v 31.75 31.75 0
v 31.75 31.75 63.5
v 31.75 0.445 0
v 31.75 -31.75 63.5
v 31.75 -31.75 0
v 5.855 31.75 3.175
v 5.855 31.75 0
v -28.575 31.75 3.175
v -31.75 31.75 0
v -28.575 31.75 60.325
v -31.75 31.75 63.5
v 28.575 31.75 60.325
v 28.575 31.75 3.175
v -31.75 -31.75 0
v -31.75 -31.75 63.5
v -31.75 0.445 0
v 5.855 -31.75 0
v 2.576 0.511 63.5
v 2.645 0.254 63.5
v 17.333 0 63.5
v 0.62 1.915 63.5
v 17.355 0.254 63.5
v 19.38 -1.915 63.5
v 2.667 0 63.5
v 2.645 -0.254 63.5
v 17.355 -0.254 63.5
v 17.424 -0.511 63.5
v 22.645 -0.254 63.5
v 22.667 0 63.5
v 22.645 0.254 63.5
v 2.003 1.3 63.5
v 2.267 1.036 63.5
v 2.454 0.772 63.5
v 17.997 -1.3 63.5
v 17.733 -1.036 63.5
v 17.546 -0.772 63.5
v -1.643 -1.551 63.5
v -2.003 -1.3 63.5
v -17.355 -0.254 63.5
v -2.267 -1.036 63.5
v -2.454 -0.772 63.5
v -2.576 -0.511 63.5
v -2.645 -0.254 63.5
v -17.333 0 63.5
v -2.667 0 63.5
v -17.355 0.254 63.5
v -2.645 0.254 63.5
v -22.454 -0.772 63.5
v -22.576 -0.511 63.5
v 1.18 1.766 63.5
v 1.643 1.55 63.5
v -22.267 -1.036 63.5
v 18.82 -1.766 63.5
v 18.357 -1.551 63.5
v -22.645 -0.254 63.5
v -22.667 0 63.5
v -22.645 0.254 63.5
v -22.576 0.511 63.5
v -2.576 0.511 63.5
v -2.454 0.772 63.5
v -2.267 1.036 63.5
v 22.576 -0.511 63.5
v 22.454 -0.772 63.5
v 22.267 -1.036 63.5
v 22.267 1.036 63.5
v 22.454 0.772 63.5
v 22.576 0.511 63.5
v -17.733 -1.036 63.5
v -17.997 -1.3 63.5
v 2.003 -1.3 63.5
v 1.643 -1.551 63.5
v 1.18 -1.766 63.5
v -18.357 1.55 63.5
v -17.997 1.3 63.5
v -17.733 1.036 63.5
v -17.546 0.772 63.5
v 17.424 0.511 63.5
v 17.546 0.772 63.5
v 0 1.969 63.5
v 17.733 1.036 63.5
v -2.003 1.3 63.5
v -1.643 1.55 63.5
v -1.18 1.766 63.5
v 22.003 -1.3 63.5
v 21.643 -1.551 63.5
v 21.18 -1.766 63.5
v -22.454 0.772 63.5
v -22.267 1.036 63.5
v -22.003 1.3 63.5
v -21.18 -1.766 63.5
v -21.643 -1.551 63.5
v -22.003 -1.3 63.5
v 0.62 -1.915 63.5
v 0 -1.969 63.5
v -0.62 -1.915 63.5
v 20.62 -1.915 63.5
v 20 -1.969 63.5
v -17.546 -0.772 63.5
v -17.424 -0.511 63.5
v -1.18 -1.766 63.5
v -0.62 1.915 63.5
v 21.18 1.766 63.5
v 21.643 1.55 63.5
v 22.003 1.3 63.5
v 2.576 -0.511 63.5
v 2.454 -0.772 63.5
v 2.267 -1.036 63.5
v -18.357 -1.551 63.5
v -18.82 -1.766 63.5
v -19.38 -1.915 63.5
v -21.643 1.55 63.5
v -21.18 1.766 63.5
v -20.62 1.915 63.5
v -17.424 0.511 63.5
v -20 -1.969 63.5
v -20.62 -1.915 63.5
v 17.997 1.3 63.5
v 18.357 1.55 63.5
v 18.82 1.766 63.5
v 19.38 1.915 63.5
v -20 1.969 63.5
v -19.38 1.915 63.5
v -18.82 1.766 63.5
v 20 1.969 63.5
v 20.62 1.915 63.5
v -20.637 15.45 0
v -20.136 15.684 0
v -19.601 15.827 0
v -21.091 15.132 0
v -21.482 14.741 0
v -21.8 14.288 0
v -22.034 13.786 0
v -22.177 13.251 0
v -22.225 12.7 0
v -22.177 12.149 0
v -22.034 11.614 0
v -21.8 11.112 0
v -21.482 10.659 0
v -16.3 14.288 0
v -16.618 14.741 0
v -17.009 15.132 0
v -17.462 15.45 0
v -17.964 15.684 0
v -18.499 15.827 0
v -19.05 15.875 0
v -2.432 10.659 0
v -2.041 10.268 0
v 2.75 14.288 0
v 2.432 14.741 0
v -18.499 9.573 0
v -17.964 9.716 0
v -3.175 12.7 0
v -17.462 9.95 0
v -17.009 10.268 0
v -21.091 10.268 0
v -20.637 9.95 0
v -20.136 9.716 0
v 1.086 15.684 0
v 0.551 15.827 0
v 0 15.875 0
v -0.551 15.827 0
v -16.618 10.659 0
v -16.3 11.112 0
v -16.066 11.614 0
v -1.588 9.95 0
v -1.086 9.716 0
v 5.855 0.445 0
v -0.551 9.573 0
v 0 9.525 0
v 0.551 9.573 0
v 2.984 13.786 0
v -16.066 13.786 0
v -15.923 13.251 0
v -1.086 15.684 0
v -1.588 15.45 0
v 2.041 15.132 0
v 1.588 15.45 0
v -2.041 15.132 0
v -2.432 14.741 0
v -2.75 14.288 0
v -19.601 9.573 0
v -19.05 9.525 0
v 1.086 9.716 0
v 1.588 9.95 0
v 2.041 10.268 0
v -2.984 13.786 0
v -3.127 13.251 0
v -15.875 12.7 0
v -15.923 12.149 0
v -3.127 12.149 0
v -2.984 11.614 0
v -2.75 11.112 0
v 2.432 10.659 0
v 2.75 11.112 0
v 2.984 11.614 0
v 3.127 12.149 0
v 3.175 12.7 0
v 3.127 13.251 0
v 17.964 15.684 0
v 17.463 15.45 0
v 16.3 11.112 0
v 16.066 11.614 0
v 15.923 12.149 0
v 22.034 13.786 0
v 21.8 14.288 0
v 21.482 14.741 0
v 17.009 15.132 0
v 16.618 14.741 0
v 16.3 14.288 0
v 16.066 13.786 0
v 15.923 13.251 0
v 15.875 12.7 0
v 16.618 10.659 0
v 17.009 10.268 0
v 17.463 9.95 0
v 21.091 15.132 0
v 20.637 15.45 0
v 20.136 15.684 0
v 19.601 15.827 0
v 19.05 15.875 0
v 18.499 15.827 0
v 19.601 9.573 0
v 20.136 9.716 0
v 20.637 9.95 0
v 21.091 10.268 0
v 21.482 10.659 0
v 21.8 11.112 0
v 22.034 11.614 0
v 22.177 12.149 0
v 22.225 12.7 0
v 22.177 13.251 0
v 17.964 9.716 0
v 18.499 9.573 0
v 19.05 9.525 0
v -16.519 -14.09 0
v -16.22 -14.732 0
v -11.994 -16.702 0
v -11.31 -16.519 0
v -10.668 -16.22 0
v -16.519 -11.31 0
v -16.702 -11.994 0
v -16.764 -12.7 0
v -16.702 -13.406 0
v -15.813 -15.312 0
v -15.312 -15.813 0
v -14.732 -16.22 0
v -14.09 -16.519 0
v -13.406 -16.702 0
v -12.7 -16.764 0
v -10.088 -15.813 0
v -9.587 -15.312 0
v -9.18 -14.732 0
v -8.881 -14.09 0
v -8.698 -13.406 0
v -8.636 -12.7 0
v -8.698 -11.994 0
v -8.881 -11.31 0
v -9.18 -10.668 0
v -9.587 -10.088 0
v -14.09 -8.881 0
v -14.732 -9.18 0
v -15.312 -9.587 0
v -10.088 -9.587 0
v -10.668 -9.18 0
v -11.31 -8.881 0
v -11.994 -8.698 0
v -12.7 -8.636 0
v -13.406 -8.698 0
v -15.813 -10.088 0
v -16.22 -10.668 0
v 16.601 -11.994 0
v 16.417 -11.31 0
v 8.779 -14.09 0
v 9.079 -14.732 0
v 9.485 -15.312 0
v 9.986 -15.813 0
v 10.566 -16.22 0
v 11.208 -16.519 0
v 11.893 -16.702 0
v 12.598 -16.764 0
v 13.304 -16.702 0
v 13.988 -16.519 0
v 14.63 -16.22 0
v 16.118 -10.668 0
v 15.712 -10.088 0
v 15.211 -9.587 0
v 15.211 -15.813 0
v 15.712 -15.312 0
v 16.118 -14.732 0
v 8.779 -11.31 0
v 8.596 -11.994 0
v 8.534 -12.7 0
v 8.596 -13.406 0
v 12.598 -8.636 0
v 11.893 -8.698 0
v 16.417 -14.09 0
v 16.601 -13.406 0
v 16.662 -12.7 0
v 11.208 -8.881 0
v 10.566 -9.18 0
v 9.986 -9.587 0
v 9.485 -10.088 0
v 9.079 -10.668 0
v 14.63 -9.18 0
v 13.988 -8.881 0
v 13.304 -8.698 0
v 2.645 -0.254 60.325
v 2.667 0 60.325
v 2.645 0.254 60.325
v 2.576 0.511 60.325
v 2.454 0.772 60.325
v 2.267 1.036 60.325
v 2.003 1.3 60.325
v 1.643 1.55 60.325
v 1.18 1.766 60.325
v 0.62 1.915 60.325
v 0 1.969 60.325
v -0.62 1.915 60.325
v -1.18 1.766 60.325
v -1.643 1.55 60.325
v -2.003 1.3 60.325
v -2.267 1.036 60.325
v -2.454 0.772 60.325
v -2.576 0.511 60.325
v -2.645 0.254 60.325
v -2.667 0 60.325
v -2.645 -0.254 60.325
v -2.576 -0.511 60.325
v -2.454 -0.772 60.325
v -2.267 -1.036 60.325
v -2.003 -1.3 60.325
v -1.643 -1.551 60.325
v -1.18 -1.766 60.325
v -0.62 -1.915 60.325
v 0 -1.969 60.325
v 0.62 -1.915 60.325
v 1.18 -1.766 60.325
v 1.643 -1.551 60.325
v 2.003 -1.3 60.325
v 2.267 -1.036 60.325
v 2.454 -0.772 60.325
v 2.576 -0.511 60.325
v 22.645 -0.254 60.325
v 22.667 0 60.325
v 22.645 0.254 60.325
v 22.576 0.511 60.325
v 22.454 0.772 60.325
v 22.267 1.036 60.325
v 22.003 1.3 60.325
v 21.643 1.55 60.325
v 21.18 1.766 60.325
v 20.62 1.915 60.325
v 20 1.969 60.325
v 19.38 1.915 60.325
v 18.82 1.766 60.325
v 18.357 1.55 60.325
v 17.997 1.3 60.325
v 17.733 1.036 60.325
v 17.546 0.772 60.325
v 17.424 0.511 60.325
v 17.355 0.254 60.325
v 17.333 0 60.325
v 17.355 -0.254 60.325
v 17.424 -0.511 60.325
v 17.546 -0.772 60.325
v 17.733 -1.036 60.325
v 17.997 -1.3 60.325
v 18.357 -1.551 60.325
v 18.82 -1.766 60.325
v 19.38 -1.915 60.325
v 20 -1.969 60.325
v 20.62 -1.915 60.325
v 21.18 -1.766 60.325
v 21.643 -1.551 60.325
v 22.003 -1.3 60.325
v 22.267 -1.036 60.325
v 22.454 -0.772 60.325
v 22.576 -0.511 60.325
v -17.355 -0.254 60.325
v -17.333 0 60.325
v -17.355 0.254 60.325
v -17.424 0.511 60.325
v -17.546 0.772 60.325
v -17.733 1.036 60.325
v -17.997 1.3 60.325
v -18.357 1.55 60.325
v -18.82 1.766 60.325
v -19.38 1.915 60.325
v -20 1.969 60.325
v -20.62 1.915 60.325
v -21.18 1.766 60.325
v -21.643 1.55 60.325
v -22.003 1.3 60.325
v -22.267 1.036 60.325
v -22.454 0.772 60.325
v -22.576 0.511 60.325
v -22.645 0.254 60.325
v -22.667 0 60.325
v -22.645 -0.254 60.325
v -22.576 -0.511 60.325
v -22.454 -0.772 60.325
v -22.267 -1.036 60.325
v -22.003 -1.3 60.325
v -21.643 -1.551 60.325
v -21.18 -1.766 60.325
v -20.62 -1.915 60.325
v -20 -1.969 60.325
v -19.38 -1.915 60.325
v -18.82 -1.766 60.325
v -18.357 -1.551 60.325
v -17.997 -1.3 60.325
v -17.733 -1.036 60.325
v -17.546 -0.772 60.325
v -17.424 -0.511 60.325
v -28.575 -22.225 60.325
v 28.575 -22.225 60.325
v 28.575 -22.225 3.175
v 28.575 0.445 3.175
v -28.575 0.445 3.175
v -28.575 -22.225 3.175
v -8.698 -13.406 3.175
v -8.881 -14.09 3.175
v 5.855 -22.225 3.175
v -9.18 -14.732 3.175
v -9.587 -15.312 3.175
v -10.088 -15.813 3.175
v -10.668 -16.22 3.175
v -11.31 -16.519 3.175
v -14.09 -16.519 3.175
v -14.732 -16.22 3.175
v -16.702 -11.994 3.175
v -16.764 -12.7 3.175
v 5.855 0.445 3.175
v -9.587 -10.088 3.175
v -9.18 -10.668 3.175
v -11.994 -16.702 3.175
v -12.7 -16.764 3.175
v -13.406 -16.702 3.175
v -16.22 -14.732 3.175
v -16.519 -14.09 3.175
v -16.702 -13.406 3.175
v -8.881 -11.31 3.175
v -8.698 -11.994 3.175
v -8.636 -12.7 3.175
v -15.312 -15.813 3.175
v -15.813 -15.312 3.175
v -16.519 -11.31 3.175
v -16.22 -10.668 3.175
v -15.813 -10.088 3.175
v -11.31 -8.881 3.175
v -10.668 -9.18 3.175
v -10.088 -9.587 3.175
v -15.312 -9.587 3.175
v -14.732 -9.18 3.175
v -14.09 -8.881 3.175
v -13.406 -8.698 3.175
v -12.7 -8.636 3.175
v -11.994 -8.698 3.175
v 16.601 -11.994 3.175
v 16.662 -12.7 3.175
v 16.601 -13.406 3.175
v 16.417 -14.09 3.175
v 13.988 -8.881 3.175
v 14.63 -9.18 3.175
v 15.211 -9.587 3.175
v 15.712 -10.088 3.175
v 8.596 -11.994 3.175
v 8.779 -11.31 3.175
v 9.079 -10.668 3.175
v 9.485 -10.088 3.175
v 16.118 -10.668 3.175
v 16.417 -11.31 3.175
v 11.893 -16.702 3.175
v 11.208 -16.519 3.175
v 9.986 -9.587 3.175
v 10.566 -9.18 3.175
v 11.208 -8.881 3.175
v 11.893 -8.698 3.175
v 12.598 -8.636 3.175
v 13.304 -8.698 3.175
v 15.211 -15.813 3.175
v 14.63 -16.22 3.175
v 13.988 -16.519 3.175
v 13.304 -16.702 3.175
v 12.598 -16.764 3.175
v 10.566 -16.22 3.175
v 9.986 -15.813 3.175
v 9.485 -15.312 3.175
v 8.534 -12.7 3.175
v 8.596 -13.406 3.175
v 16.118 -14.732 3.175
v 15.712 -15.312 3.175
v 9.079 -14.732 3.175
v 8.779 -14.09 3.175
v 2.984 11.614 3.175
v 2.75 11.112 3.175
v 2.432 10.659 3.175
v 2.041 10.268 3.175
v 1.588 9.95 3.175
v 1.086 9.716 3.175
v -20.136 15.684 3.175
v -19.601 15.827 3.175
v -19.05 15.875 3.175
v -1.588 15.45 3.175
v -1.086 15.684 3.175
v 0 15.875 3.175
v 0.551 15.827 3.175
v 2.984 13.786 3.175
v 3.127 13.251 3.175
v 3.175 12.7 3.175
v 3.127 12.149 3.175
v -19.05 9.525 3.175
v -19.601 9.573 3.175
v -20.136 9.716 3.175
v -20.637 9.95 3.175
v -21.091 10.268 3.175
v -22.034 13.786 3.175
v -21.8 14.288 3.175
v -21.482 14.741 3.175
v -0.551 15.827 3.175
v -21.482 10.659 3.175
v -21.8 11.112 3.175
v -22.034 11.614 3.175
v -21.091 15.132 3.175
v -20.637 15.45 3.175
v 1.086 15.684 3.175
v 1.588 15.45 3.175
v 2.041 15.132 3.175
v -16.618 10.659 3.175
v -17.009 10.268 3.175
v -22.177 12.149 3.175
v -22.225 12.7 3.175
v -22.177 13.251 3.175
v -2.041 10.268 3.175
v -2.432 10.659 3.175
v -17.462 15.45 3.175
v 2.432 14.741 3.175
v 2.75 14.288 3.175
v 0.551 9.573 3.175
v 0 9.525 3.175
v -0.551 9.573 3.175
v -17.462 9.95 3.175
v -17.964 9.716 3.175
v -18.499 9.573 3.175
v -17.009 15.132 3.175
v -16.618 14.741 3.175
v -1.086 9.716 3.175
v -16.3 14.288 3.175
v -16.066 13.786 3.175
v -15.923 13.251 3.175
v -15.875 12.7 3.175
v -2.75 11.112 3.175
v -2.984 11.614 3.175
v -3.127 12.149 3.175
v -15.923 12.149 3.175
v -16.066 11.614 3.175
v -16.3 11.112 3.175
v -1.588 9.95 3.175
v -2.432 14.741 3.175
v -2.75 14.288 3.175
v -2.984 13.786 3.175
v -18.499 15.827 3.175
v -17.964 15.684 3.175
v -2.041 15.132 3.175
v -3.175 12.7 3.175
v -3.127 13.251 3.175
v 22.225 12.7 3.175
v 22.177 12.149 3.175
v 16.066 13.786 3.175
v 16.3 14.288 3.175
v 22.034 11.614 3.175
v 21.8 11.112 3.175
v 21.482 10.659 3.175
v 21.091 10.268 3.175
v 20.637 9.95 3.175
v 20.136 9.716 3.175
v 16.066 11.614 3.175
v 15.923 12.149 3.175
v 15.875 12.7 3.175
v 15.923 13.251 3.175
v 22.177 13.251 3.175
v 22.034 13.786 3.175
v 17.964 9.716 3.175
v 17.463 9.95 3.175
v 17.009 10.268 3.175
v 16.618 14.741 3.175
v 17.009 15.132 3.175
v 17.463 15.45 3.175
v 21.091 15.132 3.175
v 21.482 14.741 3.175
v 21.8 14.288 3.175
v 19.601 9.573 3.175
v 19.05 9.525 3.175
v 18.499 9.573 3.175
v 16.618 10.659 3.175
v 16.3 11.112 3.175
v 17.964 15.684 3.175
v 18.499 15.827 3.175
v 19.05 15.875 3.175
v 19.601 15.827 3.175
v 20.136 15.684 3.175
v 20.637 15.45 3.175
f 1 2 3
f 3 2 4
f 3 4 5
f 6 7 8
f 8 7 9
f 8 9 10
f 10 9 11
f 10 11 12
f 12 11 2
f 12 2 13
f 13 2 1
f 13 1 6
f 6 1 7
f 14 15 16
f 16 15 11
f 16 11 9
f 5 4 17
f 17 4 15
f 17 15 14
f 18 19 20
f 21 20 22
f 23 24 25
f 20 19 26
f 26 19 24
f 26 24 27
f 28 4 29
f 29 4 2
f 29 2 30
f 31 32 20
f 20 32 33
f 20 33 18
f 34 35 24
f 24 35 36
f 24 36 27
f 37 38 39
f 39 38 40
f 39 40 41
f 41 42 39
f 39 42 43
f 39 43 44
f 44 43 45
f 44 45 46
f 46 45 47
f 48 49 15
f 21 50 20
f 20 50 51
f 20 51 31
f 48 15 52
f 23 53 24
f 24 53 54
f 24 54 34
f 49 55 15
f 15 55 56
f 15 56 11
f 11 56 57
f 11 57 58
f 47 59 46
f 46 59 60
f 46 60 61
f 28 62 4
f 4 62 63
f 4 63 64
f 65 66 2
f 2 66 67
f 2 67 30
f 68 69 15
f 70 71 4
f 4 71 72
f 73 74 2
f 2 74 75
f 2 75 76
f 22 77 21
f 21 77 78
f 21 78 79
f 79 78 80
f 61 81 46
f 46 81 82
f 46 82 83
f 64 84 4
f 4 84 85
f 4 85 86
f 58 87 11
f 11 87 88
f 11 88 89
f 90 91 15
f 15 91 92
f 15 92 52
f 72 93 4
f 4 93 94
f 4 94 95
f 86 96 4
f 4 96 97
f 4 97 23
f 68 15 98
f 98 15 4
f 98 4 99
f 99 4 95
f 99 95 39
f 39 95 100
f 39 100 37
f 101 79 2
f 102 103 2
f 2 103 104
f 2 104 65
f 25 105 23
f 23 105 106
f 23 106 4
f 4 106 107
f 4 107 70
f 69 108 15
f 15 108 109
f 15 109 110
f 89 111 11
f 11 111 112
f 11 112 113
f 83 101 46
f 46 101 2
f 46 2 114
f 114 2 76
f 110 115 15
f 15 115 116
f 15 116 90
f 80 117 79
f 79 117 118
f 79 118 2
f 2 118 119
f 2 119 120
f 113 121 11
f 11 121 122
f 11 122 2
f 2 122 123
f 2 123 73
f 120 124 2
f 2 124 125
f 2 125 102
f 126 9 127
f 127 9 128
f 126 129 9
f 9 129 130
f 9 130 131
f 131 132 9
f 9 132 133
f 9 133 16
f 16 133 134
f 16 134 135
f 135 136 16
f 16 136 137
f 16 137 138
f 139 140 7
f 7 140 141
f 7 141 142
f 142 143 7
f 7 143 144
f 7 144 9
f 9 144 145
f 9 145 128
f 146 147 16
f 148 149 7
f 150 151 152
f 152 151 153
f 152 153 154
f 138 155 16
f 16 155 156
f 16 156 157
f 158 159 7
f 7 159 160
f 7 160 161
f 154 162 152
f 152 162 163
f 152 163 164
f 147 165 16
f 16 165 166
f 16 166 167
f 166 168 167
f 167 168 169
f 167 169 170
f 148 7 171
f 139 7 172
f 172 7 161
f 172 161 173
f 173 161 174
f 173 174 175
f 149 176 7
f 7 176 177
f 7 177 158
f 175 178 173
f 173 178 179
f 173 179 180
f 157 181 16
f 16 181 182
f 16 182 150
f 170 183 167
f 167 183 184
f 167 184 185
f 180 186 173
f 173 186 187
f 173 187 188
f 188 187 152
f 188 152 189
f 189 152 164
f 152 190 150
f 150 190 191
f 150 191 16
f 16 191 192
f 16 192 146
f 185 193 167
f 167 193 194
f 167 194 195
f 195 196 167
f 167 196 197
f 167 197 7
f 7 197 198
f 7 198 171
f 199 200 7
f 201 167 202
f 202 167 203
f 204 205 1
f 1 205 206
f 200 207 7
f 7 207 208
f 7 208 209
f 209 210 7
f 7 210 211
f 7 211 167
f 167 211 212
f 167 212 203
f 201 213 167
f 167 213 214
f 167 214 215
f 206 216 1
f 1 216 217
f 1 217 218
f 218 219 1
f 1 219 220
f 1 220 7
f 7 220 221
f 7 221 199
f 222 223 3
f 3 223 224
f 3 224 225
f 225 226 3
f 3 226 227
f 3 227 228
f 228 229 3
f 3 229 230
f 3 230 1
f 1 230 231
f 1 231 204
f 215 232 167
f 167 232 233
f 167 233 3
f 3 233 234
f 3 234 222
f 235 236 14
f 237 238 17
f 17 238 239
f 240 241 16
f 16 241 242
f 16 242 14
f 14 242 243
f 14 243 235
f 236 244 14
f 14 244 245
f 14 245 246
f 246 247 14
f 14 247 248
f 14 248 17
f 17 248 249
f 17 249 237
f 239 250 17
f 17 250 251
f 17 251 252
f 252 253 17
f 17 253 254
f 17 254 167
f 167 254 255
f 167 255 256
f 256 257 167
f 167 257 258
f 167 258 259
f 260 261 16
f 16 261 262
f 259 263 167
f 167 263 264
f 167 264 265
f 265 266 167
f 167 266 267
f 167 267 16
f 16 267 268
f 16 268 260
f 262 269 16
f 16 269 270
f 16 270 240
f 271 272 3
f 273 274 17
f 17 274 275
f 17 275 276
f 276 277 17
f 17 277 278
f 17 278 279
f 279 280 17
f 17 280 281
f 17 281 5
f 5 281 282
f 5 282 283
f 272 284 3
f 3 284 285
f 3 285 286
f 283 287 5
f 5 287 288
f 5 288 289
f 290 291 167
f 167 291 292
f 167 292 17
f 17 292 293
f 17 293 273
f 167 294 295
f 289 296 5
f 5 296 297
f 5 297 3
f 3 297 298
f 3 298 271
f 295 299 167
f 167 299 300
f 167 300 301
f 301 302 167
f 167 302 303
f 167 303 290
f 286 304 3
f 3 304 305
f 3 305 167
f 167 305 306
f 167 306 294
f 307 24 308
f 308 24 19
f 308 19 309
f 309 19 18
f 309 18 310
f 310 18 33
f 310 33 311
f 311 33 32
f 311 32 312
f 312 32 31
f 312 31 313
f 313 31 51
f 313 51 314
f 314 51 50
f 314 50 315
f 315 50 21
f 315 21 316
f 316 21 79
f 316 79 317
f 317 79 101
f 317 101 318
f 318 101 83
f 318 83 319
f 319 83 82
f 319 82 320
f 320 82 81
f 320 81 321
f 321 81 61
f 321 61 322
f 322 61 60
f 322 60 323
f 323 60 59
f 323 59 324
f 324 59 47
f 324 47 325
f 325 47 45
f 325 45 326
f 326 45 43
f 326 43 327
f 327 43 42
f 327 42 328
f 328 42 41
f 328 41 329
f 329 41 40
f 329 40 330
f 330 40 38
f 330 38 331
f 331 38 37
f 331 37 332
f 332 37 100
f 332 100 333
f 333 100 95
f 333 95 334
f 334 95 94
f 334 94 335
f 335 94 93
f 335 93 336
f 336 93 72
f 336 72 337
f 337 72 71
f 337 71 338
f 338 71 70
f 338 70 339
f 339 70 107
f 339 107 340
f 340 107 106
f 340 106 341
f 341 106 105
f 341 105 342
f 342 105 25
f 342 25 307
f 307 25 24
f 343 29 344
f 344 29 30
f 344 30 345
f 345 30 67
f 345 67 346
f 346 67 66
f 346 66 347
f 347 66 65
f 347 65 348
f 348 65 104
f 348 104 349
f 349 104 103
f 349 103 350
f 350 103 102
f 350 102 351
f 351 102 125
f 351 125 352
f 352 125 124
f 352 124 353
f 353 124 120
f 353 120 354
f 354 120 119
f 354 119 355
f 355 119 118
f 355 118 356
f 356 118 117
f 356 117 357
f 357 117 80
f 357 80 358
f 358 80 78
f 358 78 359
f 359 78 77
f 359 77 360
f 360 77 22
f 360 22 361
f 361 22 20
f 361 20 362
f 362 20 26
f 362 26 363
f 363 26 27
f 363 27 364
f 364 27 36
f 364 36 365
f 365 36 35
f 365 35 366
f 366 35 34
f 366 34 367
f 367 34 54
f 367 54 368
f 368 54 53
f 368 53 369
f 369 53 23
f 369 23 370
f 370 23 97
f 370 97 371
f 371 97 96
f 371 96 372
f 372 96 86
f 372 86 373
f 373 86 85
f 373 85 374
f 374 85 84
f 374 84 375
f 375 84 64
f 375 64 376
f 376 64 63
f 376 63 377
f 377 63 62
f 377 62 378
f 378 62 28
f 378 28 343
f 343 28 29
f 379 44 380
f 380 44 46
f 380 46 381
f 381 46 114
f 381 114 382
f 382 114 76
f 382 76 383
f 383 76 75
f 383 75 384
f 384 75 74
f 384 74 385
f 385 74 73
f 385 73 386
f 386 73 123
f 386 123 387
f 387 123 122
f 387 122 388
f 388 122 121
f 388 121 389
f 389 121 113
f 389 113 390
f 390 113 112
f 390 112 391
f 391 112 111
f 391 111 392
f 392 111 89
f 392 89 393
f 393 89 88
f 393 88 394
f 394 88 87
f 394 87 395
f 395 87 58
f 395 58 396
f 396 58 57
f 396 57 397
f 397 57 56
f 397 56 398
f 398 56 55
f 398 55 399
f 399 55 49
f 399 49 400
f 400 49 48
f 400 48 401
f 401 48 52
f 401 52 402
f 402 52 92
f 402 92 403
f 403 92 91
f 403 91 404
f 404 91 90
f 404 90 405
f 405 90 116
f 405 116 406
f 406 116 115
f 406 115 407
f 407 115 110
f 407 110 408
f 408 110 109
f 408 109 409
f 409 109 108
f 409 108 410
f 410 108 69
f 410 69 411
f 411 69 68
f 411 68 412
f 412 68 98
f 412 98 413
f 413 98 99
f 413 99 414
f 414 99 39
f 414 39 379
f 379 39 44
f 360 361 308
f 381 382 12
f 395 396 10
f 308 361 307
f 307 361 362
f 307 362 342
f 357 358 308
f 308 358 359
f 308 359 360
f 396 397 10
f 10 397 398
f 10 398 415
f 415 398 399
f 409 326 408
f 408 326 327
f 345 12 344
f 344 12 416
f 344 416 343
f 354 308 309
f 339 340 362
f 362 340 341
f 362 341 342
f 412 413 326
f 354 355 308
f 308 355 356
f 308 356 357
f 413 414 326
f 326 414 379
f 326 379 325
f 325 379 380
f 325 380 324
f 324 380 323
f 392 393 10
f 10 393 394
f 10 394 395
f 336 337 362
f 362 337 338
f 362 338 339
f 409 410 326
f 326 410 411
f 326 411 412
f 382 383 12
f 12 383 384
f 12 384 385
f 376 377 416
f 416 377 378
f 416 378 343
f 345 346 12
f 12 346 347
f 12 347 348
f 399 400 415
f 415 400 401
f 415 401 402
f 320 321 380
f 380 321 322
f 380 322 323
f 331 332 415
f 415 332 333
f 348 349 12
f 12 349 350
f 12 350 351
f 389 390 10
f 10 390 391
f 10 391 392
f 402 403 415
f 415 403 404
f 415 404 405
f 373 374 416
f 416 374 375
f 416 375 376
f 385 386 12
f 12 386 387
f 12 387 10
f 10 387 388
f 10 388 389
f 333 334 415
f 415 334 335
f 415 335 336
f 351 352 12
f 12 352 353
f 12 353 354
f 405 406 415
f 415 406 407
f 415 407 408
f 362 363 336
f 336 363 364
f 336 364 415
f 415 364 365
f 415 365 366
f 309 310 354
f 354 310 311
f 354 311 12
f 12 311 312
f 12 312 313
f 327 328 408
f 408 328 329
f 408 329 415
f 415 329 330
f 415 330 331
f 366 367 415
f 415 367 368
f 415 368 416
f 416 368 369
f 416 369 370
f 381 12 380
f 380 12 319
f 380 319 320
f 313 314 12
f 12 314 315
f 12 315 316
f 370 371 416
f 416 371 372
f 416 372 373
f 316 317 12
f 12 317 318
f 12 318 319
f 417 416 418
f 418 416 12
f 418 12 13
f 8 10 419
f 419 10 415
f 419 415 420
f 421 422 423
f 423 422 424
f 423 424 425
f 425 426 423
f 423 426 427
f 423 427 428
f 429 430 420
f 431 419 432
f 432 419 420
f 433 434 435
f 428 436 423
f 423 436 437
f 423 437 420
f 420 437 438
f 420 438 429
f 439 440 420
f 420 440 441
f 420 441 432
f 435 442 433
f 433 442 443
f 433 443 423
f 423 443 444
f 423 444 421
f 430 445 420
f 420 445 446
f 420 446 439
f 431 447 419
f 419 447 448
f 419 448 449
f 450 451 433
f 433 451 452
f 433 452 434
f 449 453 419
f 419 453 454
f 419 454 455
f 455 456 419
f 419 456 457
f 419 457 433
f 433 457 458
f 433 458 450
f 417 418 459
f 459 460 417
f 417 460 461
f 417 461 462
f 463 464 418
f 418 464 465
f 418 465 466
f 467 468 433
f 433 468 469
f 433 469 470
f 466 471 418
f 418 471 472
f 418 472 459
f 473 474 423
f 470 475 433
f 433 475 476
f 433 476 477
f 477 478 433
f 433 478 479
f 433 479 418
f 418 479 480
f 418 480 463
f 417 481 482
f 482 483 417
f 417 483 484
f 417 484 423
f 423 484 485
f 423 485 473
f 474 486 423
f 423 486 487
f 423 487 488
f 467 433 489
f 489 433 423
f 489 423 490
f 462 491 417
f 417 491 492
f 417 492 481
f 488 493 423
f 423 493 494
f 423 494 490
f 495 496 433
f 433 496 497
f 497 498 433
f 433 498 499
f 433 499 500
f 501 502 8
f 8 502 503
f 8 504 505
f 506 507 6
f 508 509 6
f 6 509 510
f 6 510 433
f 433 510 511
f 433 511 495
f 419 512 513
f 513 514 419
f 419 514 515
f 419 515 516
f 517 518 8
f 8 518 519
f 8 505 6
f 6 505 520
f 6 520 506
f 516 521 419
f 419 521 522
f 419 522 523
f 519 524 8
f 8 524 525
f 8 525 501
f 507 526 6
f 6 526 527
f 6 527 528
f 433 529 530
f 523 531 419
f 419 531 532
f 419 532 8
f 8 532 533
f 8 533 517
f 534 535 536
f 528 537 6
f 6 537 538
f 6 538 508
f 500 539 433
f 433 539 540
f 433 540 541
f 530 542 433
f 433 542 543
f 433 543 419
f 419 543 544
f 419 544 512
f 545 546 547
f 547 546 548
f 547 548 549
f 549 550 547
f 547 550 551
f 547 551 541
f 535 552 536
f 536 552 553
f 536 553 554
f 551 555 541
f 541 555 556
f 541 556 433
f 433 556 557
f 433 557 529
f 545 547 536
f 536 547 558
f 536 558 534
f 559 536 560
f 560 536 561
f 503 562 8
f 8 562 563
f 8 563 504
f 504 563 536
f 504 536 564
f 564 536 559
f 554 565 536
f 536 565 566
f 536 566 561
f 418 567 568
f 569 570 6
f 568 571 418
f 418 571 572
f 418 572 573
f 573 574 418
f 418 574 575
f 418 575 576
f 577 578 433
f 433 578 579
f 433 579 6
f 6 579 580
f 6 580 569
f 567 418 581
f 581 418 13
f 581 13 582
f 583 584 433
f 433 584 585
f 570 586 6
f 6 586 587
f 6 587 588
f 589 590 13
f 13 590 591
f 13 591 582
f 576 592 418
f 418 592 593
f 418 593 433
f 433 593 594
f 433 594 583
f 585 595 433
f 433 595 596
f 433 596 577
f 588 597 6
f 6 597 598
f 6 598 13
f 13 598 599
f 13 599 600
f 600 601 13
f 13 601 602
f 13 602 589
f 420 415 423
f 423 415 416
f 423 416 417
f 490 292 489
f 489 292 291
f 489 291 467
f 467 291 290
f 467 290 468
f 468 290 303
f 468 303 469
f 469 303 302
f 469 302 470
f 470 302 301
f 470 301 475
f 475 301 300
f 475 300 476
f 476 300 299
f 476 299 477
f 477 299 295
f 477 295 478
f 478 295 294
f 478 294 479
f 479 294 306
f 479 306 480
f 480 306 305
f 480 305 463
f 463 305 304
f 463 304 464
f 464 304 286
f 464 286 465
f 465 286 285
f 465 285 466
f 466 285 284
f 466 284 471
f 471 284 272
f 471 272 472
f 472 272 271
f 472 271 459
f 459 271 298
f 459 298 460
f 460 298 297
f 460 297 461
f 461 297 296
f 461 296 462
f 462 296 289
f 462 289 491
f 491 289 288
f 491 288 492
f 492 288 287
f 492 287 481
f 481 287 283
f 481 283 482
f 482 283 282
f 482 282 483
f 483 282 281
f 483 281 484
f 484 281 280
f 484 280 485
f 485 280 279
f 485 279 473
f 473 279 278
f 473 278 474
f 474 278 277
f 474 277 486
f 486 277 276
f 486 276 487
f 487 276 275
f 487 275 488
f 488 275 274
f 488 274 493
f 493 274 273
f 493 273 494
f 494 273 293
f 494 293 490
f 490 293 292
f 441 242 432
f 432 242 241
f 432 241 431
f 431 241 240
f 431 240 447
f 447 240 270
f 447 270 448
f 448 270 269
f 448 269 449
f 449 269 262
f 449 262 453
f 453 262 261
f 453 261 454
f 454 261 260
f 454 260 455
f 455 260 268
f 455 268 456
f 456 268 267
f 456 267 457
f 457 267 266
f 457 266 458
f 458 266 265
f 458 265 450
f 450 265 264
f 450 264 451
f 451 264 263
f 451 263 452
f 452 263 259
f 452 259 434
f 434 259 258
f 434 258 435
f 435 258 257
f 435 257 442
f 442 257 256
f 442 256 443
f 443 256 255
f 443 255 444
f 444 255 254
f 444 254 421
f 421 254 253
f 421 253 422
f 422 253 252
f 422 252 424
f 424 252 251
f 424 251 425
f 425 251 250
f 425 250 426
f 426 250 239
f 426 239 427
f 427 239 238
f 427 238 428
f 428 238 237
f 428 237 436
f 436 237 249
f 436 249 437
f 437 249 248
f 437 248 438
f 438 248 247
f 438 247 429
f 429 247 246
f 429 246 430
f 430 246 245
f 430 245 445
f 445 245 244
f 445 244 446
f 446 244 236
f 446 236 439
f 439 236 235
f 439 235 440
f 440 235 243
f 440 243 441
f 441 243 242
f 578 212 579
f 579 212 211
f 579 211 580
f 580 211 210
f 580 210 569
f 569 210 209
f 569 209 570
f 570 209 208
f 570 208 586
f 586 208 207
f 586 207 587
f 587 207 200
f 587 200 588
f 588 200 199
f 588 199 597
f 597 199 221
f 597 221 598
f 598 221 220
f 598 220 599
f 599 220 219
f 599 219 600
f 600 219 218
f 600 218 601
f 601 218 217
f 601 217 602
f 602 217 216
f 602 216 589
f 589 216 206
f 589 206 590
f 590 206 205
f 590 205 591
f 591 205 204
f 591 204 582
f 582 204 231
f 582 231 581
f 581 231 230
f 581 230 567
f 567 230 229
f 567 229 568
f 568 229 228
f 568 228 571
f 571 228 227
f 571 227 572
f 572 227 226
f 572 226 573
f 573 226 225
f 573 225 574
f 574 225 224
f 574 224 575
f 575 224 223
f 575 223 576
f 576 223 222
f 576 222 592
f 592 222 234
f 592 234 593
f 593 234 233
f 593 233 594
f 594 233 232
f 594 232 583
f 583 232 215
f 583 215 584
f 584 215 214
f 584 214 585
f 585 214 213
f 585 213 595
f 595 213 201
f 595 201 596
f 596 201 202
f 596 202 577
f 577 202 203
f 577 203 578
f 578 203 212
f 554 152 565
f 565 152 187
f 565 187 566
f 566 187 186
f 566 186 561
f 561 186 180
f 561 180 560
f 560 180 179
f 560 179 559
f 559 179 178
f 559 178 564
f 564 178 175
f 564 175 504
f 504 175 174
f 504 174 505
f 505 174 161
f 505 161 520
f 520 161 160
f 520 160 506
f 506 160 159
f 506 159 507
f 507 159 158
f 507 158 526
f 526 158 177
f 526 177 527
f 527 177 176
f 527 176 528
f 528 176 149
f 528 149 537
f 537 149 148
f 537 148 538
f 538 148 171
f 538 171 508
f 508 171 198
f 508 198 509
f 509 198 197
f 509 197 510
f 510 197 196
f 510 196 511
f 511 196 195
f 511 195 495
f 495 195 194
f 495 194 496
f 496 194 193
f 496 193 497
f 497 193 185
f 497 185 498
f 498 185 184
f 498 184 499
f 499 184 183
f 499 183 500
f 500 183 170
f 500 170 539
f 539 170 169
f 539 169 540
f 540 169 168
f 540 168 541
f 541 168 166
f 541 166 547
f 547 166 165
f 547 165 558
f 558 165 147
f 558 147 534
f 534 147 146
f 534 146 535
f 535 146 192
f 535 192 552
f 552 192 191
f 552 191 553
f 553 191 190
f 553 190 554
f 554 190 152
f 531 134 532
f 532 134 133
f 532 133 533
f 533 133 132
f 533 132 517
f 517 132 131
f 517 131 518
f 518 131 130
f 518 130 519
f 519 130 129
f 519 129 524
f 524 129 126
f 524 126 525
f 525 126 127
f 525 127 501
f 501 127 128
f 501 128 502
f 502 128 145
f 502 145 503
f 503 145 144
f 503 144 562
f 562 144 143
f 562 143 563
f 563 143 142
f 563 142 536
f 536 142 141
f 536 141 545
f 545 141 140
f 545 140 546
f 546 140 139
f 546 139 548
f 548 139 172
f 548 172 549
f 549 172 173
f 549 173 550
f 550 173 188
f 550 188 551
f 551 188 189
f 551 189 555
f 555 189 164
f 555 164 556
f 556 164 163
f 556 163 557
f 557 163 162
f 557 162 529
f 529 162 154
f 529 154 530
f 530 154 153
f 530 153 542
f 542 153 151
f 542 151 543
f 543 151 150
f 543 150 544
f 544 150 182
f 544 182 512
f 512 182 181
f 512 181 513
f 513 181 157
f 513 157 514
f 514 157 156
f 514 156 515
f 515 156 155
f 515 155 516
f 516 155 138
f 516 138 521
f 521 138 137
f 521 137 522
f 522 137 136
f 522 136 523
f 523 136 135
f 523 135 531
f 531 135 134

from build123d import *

# Parameters (mm, degrees)
SKETCH1_W           = 63.5
SKETCH1_H           = 63.5
BOSS_EXTRUDE1_DEPTH = 63.5
SKETCH2_RX          = 2.667
SKETCH2_RY          = 1.9685
CUT_EXTRUDE1_DEPTH  = 3.175
SKETCH3_W           = 57.15
SKETCH3_H           = 57.15
CUT_EXTRUDE2_DEPTH  = 53.975
CUT_EXTRUDE3_REACH  = 79.771
SKETCH4_R           = 4.064
CUT_EXTRUDE4_REACH  = 79.771
SKETCH5_R           = 3.175


with BuildPart() as part:
    # Sketch1 → Boss-Extrude1 (new body)
    with BuildSketch(Plane.XY):
        Rectangle(SKETCH1_W, SKETCH1_H)
    extrude(amount=BOSS_EXTRUDE1_DEPTH)

    # Sketch2 → Cut-Extrude1 (cut)
    with BuildSketch(Plane.XY.offset(63.5)):
        with Locations((0, 0)):
            Ellipse(SKETCH2_RX, SKETCH2_RY)
        with Locations((20, 0)):
            Ellipse(SKETCH2_RX, SKETCH2_RY)
        with Locations((-20, 0)):
            Ellipse(SKETCH2_RX, SKETCH2_RY)
    extrude(amount=-CUT_EXTRUDE1_DEPTH, mode=Mode.SUBTRACT)

    # Sketch3 → Cut-Extrude2 (cut)
    with BuildSketch(Plane(origin=(0, 31.75, 0), x_dir=(1, 0, 0), z_dir=(0, 1, 0))):
        with Locations((0, -31.75)):
            Rectangle(SKETCH3_W, SKETCH3_H)
    extrude(amount=-CUT_EXTRUDE2_DEPTH, mode=Mode.SUBTRACT)

    # Sketch4 → Cut-Extrude3 (cut, up to next)
    with BuildSketch(Plane(origin=(0, 0, 0), x_dir=(-1, 0, 0), z_dir=(0, 0, -1)), mode=Mode.PRIVATE) as cut_extrude3_sk1:
        with Locations((-12.5984, -12.7)):
            Circle(SKETCH4_R)
    cut_extrude3_tool1 = extrude(cut_extrude3_sk1.sketch, amount=-CUT_EXTRUDE3_REACH, mode=Mode.PRIVATE) & part.part
    # Sketch4 → Cut-Extrude3 (cut, up to next)
    with BuildSketch(Plane(origin=(0, 0, 0), x_dir=(-1, 0, 0), z_dir=(0, 0, -1)), mode=Mode.PRIVATE) as cut_extrude3_sk2:
        with Locations((12.7, -12.7)):
            Circle(SKETCH4_R)
    cut_extrude3_tool2 = extrude(cut_extrude3_sk2.sketch, amount=-CUT_EXTRUDE3_REACH, mode=Mode.PRIVATE) & part.part
    add(cut_extrude3_tool1.solids().sort_by_distance((12.5984, -12.7, 0))[0], mode=Mode.SUBTRACT)
    add(cut_extrude3_tool2.solids().sort_by_distance((-12.7, -12.7, 0))[0], mode=Mode.SUBTRACT)

    # Sketch5 → Cut-Extrude4 (cut, up to next)
    with BuildSketch(Plane(origin=(0, 0, 0), x_dir=(-1, 0, 0), z_dir=(0, 0, -1)), mode=Mode.PRIVATE) as cut_extrude4_sk1:
        with Locations((-19.05, 12.7)):
            Circle(SKETCH5_R)
    cut_extrude4_tool1 = extrude(cut_extrude4_sk1.sketch, amount=-CUT_EXTRUDE4_REACH, mode=Mode.PRIVATE) & part.part
    # Sketch5 → Cut-Extrude4 (cut, up to next)
    with BuildSketch(Plane(origin=(0, 0, 0), x_dir=(-1, 0, 0), z_dir=(0, 0, -1)), mode=Mode.PRIVATE) as cut_extrude4_sk2:
        with Locations((0, 12.7)):
            Circle(SKETCH5_R)
    cut_extrude4_tool2 = extrude(cut_extrude4_sk2.sketch, amount=-CUT_EXTRUDE4_REACH, mode=Mode.PRIVATE) & part.part
    # Sketch5 → Cut-Extrude4 (cut, up to next)
    with BuildSketch(Plane(origin=(0, 0, 0), x_dir=(-1, 0, 0), z_dir=(0, 0, -1)), mode=Mode.PRIVATE) as cut_extrude4_sk3:
        with Locations((19.05, 12.7)):
            Circle(SKETCH5_R)
    cut_extrude4_tool3 = extrude(cut_extrude4_sk3.sketch, amount=-CUT_EXTRUDE4_REACH, mode=Mode.PRIVATE) & part.part
    add(cut_extrude4_tool1.solids().sort_by_distance((19.05, 12.7, 0))[0], mode=Mode.SUBTRACT)
    add(cut_extrude4_tool2.solids().sort_by_distance((0, 12.7, 0))[0], mode=Mode.SUBTRACT)
    add(cut_extrude4_tool3.solids().sort_by_distance((-19.05, 12.7, 0))[0], mode=Mode.SUBTRACT)


solid = part.part
